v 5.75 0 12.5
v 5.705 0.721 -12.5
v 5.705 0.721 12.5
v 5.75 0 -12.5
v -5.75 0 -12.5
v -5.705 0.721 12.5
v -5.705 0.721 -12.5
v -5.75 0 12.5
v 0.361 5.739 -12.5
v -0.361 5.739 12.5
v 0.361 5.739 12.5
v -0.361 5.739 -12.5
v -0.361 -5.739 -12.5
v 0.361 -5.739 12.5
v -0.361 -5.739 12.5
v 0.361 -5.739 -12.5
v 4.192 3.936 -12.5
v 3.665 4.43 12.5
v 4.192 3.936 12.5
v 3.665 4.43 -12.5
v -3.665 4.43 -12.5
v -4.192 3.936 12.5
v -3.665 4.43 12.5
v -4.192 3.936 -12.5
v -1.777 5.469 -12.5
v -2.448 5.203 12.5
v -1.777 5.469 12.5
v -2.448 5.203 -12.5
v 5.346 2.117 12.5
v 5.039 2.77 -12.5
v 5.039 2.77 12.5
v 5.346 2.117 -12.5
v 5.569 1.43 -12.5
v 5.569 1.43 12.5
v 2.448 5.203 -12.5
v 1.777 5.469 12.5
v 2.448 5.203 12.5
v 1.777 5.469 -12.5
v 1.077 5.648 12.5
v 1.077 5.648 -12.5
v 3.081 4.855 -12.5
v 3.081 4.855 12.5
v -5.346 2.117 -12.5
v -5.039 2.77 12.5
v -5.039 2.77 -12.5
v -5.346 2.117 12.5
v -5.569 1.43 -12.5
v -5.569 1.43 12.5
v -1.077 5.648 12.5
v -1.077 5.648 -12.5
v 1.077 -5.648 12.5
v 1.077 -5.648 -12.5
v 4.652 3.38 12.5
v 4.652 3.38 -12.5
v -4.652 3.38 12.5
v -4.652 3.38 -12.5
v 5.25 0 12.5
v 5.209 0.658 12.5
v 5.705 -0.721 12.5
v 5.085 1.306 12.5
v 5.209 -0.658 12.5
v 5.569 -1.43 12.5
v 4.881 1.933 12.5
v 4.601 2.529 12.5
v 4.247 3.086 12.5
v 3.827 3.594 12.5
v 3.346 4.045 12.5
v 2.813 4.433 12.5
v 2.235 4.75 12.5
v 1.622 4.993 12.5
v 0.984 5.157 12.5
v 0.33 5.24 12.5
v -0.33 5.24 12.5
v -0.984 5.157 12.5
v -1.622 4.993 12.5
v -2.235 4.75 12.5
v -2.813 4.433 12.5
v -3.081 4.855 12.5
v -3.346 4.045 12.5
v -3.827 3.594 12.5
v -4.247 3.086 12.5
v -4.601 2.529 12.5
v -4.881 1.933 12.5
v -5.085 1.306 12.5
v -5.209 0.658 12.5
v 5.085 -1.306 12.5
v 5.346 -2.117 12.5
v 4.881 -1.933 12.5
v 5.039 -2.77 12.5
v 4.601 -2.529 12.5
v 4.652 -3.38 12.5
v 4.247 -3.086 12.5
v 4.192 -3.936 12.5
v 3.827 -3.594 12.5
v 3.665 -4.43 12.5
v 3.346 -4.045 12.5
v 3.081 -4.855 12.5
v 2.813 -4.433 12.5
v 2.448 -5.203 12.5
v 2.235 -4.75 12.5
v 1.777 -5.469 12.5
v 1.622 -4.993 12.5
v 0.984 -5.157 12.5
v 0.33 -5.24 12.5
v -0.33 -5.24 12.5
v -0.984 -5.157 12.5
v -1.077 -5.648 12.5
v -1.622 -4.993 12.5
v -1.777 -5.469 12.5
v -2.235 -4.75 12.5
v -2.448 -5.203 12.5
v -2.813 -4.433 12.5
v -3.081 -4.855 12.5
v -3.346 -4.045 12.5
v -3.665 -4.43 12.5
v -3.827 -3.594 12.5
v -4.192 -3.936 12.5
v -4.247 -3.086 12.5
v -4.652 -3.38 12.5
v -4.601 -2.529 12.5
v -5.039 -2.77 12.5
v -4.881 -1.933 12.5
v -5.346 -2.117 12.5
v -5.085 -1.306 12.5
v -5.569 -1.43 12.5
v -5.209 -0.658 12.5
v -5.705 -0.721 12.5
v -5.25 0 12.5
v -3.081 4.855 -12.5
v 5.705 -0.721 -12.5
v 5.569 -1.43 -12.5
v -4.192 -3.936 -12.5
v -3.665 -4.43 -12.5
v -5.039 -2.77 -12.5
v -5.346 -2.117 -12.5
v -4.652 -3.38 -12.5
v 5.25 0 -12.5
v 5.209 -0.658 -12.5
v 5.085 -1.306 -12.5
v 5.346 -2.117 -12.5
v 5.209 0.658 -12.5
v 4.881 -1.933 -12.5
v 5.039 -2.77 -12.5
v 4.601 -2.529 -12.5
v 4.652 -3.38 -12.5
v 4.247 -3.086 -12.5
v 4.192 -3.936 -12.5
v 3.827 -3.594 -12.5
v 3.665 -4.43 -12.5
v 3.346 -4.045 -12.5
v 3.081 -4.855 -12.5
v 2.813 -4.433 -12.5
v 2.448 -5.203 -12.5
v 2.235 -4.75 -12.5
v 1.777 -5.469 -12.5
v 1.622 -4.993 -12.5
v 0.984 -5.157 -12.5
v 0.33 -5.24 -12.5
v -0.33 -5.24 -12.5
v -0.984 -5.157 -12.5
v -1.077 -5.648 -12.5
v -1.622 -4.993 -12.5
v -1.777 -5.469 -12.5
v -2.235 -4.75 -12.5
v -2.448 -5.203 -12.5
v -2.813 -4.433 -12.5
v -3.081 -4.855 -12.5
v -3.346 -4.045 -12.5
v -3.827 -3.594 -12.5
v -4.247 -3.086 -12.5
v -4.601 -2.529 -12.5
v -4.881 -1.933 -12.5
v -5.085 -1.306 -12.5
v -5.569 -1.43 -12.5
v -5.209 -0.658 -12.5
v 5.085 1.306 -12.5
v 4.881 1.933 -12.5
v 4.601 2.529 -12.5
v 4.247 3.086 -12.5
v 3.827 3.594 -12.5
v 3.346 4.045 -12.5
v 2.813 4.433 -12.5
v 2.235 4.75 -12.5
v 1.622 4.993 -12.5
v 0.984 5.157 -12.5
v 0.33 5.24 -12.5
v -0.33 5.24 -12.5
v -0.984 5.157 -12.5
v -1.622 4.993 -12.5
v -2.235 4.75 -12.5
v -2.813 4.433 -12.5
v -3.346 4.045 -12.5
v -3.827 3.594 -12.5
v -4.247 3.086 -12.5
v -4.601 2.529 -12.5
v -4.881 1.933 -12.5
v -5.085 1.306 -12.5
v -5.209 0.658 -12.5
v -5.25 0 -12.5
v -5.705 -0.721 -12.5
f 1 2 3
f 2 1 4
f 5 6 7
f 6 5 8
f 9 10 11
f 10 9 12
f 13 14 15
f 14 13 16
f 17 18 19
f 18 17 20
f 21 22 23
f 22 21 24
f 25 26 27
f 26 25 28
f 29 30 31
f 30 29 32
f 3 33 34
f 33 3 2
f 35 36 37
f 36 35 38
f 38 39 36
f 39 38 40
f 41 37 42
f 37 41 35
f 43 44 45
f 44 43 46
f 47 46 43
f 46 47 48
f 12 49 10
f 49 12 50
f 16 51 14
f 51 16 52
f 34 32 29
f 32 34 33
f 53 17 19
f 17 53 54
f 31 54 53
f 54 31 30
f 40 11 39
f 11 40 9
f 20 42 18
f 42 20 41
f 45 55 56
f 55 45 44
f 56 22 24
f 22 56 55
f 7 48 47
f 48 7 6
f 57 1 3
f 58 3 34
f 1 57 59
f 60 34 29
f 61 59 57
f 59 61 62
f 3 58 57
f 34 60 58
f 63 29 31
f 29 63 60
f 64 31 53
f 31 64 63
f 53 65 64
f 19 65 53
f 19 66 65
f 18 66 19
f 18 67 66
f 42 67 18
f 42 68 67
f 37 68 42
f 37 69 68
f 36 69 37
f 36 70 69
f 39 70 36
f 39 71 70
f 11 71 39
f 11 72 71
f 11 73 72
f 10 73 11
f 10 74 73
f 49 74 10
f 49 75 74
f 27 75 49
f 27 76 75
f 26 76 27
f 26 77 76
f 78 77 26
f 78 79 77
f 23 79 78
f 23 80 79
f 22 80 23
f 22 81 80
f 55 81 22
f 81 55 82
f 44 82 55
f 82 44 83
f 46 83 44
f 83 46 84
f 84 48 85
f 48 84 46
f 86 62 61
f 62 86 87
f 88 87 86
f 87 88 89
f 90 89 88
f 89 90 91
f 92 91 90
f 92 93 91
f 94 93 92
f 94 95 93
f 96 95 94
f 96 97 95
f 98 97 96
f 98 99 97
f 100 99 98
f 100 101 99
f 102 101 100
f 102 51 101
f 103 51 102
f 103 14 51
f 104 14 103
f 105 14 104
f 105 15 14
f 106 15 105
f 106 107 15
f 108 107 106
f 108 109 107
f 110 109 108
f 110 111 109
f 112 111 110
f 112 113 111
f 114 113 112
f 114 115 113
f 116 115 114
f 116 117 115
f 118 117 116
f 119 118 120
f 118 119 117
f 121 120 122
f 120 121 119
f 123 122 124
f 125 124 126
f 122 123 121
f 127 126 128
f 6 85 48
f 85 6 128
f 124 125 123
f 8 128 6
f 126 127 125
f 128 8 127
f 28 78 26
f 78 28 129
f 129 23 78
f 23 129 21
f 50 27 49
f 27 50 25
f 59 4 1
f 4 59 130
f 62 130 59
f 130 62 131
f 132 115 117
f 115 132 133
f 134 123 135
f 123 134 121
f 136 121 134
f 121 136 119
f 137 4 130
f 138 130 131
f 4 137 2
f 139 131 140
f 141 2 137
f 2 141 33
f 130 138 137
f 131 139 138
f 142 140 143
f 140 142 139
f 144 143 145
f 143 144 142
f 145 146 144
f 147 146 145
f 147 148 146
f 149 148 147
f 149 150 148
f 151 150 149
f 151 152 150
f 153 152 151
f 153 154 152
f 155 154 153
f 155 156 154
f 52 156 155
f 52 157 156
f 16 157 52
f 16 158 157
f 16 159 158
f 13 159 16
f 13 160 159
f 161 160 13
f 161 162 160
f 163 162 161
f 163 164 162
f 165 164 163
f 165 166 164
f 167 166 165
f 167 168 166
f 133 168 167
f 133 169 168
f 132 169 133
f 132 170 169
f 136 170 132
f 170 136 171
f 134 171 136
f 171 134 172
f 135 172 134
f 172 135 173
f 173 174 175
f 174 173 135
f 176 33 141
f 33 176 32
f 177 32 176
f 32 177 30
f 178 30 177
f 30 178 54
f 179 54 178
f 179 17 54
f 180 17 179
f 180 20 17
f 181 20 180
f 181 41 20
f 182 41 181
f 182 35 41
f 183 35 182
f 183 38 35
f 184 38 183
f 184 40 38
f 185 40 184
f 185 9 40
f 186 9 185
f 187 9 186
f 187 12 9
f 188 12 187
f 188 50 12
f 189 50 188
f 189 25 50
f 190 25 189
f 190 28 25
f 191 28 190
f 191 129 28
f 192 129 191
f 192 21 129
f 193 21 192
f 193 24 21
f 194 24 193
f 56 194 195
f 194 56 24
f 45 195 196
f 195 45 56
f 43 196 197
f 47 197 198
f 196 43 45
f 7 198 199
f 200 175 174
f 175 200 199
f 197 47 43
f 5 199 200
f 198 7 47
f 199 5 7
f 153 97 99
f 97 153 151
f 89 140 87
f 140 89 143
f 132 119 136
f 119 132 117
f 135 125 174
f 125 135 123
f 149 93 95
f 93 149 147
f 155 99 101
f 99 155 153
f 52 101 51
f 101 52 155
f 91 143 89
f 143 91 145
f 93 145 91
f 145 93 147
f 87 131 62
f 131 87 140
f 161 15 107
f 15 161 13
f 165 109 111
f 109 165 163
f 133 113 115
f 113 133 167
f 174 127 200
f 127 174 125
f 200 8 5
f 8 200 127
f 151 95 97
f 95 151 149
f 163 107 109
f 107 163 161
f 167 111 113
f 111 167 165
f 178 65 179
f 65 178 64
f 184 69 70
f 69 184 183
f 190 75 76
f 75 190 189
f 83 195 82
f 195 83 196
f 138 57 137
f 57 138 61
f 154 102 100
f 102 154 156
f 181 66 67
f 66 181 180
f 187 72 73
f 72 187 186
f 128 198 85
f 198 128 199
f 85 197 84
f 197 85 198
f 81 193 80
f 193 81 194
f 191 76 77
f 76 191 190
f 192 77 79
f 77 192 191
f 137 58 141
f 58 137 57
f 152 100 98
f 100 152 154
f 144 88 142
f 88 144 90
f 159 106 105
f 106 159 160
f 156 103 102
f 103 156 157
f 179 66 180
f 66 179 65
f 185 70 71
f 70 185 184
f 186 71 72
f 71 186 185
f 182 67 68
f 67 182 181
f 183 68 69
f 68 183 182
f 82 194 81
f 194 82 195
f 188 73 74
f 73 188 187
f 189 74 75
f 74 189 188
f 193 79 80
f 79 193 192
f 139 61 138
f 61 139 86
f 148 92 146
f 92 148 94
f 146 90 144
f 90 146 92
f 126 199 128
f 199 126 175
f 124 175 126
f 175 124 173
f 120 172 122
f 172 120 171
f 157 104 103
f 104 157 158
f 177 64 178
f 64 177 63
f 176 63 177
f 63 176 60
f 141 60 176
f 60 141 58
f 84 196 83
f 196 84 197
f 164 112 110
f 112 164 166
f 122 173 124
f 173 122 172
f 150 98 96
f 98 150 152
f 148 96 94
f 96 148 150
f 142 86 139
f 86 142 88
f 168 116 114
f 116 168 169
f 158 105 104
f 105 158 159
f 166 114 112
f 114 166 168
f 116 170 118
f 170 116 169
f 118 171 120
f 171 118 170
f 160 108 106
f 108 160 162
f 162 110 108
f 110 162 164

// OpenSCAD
$fn = 50;


difference() {
	union() {
		translate(v = [0, 0, -12.5000000000]) {
			cylinder(h = 25, r = 5.7500000000);
		}
	}
	union() {
		translate(v = [0, 0, -100.0000000000]) {
			cylinder(h = 200, r = 5.2500000000);
		}
	}
}
